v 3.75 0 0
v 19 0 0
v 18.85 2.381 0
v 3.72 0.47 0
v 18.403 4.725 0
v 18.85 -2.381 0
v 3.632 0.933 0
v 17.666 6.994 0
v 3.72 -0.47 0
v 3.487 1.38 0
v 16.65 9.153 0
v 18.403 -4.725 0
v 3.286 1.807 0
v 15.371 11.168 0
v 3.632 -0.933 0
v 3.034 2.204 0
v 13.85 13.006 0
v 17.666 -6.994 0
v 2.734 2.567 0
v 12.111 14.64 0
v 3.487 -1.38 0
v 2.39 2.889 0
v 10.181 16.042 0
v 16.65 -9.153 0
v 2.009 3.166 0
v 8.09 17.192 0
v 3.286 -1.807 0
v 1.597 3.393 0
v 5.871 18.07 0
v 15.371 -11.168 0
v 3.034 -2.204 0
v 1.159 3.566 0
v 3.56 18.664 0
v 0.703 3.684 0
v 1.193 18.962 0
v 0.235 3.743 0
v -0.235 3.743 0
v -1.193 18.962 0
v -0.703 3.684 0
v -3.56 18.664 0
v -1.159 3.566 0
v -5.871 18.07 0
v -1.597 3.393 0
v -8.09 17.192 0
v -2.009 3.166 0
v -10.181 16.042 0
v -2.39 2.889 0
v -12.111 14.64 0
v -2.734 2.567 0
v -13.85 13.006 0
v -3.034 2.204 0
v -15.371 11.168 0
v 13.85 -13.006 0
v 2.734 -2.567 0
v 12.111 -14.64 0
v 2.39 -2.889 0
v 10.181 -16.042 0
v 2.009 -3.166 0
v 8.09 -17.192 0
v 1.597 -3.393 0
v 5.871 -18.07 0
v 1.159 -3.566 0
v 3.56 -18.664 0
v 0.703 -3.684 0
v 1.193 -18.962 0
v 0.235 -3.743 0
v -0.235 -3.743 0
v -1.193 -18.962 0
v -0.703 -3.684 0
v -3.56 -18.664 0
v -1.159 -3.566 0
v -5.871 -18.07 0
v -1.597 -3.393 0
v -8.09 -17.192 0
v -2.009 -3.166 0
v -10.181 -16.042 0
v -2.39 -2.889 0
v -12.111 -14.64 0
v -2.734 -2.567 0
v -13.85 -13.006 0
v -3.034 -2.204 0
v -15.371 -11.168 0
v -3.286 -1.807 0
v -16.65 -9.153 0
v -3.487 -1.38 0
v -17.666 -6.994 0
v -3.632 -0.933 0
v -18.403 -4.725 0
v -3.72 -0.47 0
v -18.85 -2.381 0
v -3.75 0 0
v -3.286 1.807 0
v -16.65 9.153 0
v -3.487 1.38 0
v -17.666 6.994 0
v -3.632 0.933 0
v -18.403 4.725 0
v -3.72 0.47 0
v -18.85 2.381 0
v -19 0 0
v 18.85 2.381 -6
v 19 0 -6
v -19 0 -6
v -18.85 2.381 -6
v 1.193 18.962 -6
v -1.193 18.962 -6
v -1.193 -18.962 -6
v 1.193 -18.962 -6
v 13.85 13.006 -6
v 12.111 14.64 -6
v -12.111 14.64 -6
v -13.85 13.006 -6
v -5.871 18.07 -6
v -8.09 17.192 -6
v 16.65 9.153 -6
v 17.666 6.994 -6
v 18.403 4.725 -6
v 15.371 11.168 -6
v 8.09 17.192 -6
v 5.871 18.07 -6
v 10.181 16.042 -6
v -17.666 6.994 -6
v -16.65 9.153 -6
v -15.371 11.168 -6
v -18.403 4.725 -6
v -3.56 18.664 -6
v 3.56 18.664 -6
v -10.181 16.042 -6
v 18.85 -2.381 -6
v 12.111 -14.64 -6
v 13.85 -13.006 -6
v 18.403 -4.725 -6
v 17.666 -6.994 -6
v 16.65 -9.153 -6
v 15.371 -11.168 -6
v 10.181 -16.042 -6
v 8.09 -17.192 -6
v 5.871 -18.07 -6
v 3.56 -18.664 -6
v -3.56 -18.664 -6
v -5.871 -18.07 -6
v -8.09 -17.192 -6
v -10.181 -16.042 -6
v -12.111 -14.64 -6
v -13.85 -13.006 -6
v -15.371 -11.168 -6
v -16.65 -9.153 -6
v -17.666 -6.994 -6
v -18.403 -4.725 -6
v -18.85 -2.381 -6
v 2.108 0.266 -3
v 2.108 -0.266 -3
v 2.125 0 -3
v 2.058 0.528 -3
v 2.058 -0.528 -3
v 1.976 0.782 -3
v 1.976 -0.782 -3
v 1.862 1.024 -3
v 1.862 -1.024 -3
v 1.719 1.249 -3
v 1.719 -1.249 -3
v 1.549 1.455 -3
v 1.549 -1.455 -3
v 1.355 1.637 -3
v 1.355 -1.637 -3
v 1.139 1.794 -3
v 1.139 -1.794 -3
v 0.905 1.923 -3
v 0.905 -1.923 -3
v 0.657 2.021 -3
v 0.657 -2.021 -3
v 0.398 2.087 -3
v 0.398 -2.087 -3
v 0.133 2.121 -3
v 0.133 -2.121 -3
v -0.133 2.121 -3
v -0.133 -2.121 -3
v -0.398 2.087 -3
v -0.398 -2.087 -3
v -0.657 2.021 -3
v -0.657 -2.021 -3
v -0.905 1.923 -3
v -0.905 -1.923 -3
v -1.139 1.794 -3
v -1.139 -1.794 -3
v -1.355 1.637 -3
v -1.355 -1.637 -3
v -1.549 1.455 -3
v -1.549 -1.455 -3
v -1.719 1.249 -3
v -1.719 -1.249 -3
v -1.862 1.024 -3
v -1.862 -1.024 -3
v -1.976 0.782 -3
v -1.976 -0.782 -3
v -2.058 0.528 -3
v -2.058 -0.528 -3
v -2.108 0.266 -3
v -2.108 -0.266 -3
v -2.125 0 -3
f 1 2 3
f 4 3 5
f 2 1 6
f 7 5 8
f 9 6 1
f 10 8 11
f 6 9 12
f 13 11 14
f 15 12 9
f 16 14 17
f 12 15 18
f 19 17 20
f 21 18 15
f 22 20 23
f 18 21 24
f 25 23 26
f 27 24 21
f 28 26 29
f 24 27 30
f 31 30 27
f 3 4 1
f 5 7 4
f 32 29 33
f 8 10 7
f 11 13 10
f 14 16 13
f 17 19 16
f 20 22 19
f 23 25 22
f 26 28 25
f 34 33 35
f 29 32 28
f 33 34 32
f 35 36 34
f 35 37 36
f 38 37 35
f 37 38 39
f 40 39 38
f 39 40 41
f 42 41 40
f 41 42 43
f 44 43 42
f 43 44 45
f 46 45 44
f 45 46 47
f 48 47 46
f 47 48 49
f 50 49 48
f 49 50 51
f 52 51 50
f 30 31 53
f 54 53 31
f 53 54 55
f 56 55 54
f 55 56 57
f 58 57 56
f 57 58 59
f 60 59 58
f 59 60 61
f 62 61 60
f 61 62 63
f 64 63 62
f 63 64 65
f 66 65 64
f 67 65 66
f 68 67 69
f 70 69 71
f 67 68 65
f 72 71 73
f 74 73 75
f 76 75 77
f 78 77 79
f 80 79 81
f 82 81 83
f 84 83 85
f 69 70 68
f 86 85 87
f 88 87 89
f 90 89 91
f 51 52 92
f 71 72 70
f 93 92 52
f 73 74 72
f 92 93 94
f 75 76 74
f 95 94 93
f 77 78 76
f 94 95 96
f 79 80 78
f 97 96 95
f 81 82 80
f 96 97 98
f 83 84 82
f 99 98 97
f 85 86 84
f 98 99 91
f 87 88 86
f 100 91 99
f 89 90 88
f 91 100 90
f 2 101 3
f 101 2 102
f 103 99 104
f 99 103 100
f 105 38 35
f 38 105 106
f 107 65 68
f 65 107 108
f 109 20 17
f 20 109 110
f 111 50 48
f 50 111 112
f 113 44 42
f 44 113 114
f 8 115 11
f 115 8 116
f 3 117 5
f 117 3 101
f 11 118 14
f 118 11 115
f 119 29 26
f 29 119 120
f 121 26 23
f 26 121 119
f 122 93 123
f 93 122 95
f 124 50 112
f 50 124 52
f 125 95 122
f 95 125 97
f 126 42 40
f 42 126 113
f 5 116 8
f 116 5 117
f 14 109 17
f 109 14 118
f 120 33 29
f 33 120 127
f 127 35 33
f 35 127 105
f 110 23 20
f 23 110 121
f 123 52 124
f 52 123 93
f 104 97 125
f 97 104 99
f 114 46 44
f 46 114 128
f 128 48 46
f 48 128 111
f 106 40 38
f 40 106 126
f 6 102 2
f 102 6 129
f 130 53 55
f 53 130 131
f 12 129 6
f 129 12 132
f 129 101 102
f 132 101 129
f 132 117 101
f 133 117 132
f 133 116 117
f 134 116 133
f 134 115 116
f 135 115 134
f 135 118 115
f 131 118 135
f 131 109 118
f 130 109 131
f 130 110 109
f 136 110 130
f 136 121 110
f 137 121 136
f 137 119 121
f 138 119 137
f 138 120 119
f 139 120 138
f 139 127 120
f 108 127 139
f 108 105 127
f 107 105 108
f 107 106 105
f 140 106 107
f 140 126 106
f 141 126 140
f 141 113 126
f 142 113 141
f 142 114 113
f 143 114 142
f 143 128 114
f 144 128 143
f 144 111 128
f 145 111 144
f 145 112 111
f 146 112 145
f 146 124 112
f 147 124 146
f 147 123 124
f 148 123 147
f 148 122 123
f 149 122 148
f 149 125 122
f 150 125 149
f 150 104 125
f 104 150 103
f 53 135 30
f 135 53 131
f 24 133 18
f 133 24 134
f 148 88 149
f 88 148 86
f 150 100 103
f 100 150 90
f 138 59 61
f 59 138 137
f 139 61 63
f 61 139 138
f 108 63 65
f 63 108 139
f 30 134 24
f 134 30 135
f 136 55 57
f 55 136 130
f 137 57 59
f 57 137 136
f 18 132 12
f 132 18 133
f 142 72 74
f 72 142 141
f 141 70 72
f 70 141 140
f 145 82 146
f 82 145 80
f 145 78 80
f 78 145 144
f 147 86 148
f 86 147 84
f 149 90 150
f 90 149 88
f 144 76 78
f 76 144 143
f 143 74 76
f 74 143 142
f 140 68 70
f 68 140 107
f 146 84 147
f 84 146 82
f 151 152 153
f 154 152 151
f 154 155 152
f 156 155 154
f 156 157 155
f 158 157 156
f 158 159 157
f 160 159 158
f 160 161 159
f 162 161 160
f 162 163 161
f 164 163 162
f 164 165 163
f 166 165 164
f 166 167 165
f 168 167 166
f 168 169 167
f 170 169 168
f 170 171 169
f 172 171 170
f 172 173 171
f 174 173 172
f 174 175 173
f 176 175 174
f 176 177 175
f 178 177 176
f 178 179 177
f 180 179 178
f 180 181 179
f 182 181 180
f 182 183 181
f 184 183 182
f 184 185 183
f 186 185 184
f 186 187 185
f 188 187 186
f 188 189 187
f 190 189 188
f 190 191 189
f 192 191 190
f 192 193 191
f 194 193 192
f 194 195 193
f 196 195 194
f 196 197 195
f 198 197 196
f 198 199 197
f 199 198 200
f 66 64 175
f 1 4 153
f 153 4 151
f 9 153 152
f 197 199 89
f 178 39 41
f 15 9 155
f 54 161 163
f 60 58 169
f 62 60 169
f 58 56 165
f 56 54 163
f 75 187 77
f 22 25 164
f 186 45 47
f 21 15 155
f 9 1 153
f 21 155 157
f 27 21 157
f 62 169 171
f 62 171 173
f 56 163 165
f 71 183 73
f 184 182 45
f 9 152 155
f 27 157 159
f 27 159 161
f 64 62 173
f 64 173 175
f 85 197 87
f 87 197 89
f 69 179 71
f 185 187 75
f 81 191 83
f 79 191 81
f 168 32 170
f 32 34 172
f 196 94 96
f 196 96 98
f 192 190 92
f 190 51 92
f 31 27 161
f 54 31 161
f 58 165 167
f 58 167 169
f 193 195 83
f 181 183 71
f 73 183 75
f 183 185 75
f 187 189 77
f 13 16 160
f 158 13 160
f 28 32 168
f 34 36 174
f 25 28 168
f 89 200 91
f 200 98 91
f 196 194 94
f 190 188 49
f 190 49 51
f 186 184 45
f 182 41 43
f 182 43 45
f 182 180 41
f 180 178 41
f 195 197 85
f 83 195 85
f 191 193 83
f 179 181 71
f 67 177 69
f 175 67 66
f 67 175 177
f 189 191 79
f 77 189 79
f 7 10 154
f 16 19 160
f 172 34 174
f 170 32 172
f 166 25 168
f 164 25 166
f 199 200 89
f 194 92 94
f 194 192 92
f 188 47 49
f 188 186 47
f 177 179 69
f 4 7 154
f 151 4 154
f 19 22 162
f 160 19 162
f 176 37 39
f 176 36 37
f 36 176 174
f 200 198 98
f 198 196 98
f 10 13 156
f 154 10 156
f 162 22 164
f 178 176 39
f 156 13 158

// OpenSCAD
$fn = 50;


difference() {
	union() {
		translate(v = [0, 0, -3.0000000000]) {
			cylinder(h = 3, r = 10.0000000000);
		}
		translate(v = [0, 0, -6.0000000000]) {
			cylinder(h = 6, r = 19.0000000000);
		}
	}
	union() {
		translate(v = [0, 0, 0]) {
			rotate(a = [0, 0, 0]) {
				difference() {
					union() {
						#translate(v = [0, 0, -3.0000000000]) {
							cylinder(h = 3, r = 2.0000000000);
						}
						#translate(v = [0, 0, -3]) {
							cylinder(h = 3, r1 = 2.1250000000, r2 = 3.7500000000);
						}
						#translate(v = [0, 0, -3.0000000000]) {
							cylinder(h = 3, r = 2.1250000000);
						}
						#translate(v = [0, 0, -3.0000000000]) {
							cylinder(h = 3, r = 2.0000000000);
						}
					}
					union();
				}
			}
		}
	}
}
